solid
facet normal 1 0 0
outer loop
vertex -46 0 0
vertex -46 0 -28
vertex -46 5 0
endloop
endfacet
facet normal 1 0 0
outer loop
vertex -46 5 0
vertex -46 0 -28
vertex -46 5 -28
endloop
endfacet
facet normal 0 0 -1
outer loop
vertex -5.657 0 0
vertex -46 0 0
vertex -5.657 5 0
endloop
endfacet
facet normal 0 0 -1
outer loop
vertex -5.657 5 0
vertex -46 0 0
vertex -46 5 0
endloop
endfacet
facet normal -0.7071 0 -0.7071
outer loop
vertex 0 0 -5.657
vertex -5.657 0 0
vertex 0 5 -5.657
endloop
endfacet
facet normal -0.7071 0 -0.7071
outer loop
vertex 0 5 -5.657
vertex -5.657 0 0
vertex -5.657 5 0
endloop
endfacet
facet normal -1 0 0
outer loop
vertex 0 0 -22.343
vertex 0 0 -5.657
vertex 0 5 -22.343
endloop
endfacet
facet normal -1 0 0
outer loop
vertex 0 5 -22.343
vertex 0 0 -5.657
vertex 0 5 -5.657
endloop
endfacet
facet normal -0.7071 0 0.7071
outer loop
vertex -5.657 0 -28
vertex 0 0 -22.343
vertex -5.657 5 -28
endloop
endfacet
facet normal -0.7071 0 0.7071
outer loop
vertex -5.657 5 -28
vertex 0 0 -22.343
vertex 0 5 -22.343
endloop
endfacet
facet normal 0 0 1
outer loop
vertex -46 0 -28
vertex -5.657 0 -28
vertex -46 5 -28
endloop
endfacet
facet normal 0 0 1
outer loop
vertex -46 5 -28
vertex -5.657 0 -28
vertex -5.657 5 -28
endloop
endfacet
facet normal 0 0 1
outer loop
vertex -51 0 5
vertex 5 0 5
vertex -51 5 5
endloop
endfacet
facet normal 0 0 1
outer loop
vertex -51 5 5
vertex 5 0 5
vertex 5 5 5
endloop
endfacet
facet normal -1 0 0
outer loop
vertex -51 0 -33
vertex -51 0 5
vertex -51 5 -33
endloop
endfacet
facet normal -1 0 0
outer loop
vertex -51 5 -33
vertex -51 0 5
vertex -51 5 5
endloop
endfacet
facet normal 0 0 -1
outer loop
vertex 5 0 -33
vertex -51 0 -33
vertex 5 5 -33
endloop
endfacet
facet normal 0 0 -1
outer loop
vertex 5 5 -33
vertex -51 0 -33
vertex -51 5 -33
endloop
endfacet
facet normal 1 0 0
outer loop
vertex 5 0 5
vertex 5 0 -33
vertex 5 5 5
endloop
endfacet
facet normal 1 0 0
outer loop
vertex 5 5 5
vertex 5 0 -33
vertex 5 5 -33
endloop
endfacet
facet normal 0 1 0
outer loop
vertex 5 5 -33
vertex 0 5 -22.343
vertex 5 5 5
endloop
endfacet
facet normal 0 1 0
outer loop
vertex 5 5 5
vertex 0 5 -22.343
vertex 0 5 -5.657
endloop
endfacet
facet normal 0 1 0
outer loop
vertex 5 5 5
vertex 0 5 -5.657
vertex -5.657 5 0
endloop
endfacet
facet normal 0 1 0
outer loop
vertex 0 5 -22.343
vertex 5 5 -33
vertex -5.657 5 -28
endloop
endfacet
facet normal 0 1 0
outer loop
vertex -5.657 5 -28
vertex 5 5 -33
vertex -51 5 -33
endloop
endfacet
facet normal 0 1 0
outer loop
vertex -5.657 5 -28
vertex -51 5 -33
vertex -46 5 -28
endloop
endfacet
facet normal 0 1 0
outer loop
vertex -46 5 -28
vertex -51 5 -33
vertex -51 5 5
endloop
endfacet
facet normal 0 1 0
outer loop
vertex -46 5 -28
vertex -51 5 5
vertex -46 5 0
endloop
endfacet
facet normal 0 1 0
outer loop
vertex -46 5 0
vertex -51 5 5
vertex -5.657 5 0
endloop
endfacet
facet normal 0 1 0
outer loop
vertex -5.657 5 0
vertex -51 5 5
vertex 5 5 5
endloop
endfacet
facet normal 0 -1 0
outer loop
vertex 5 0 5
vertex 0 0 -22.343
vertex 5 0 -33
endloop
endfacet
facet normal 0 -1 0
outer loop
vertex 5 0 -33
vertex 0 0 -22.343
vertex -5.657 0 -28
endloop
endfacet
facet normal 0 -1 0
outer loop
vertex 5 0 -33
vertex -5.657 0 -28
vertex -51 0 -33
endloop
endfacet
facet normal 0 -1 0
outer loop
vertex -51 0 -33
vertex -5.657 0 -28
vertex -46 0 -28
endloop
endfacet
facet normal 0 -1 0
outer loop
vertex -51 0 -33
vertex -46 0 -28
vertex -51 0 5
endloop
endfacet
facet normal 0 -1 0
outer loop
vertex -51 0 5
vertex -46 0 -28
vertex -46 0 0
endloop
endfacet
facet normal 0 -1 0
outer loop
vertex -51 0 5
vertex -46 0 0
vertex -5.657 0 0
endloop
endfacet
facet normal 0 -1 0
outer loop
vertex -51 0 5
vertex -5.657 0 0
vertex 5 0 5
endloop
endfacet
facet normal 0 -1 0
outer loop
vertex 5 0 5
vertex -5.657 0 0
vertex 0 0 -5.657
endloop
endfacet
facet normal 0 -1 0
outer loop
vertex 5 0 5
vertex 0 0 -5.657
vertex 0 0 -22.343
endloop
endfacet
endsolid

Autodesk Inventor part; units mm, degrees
ref_plane "YZ Plane" through (0, 0, 0) normal (1, 0, 0) x (0, 1, 0)
ref_plane "XZ Plane" through (0, 0, 0) normal (0, 1, 0) x (-1, 0, 0)
ref_plane "XY Plane" through (0, 0, 0) normal (0, 0, 1) x (1, 0, 0)
sketch "Sketch1" plane through (0, 0, 0) normal (0, 1, 0) x (-1, 0, 0)
  line L0 (5.6569, 0) -> (36, 0)
  line L1 (36, 0) -> (36, -28)
  line L2 (36, -28) -> (5.6569, -28)
  line L3 (0, -28) -> (0, -5.6568)
  line L4 (0, 0) -> (0, -5.6568)
  line L5 (0, -5.6568) -> (5.6569, 0)
  line L6 (36, -14) -> (0, -14) construction
  line L7 (5.6569, -28) -> (36, -28)
  line L8 (0, 0) -> (0, -22.3432)
  line L9 (0, -22.3432) -> (5.6569, -28)
  line L10 (41, -28) -> (41, 5) construction
  line L11 (41, 5) -> (3.5859, 5) construction
  line L12 (3.5859, 5) -> (-3.5355, -2.1212) construction
  line L13 (36, -33) -> (5.6569, -33) construction
  line L14 (36, 0) -> (46, 0) construction
  line L15 (46, 0) -> (46, -28) construction
  line L16 (46, -28) -> (36, -28) construction
  line L17 (36, -28) -> (36, 0) construction
  line L18 (51, 5) -> (31, 5) construction
  line L19 (31, 5) -> (31, -33) construction
  line L20 (31, -33) -> (51, -33) construction
  line L21 (51, -33) -> (51, 5) construction
  line L22 (0, 0) -> (-5, 0) construction
  line L23 (-5, 0) -> (-5, -8.8109) construction
  line L24 (-5, -8.8109) -> (0, -8.8109) construction
  line L25 (0, -8.8109) -> (0, 0) construction
  line L26 (51, 5) -> (-5, 5)
  line L27 (-5, 5) -> (-5, -33.0002)
  line L28 (-5, -33.0002) -> (51, -33.0002)
  line L29 (51, -33.0002) -> (51, 5)
  line L30 (36, 0) -> (46, 0)
  line L31 (46, 0) -> (46, -28)
  line L32 (46, -28) -> (36, -28)
  line L33 (36, -28) -> (36, 0)
  dimension "d0" = 36
  dimension "d1" = 28
  dimension "d3" = 8
  dimension "d4" = 5
  dimension "d5" = 5
  dimension "d6" = 10
  dimension "d7" = 5
  dimension "d8" = 5
extrude "Extrusion1" add sketch "Sketch1" along normal blind 5
properties part number "power_test"
